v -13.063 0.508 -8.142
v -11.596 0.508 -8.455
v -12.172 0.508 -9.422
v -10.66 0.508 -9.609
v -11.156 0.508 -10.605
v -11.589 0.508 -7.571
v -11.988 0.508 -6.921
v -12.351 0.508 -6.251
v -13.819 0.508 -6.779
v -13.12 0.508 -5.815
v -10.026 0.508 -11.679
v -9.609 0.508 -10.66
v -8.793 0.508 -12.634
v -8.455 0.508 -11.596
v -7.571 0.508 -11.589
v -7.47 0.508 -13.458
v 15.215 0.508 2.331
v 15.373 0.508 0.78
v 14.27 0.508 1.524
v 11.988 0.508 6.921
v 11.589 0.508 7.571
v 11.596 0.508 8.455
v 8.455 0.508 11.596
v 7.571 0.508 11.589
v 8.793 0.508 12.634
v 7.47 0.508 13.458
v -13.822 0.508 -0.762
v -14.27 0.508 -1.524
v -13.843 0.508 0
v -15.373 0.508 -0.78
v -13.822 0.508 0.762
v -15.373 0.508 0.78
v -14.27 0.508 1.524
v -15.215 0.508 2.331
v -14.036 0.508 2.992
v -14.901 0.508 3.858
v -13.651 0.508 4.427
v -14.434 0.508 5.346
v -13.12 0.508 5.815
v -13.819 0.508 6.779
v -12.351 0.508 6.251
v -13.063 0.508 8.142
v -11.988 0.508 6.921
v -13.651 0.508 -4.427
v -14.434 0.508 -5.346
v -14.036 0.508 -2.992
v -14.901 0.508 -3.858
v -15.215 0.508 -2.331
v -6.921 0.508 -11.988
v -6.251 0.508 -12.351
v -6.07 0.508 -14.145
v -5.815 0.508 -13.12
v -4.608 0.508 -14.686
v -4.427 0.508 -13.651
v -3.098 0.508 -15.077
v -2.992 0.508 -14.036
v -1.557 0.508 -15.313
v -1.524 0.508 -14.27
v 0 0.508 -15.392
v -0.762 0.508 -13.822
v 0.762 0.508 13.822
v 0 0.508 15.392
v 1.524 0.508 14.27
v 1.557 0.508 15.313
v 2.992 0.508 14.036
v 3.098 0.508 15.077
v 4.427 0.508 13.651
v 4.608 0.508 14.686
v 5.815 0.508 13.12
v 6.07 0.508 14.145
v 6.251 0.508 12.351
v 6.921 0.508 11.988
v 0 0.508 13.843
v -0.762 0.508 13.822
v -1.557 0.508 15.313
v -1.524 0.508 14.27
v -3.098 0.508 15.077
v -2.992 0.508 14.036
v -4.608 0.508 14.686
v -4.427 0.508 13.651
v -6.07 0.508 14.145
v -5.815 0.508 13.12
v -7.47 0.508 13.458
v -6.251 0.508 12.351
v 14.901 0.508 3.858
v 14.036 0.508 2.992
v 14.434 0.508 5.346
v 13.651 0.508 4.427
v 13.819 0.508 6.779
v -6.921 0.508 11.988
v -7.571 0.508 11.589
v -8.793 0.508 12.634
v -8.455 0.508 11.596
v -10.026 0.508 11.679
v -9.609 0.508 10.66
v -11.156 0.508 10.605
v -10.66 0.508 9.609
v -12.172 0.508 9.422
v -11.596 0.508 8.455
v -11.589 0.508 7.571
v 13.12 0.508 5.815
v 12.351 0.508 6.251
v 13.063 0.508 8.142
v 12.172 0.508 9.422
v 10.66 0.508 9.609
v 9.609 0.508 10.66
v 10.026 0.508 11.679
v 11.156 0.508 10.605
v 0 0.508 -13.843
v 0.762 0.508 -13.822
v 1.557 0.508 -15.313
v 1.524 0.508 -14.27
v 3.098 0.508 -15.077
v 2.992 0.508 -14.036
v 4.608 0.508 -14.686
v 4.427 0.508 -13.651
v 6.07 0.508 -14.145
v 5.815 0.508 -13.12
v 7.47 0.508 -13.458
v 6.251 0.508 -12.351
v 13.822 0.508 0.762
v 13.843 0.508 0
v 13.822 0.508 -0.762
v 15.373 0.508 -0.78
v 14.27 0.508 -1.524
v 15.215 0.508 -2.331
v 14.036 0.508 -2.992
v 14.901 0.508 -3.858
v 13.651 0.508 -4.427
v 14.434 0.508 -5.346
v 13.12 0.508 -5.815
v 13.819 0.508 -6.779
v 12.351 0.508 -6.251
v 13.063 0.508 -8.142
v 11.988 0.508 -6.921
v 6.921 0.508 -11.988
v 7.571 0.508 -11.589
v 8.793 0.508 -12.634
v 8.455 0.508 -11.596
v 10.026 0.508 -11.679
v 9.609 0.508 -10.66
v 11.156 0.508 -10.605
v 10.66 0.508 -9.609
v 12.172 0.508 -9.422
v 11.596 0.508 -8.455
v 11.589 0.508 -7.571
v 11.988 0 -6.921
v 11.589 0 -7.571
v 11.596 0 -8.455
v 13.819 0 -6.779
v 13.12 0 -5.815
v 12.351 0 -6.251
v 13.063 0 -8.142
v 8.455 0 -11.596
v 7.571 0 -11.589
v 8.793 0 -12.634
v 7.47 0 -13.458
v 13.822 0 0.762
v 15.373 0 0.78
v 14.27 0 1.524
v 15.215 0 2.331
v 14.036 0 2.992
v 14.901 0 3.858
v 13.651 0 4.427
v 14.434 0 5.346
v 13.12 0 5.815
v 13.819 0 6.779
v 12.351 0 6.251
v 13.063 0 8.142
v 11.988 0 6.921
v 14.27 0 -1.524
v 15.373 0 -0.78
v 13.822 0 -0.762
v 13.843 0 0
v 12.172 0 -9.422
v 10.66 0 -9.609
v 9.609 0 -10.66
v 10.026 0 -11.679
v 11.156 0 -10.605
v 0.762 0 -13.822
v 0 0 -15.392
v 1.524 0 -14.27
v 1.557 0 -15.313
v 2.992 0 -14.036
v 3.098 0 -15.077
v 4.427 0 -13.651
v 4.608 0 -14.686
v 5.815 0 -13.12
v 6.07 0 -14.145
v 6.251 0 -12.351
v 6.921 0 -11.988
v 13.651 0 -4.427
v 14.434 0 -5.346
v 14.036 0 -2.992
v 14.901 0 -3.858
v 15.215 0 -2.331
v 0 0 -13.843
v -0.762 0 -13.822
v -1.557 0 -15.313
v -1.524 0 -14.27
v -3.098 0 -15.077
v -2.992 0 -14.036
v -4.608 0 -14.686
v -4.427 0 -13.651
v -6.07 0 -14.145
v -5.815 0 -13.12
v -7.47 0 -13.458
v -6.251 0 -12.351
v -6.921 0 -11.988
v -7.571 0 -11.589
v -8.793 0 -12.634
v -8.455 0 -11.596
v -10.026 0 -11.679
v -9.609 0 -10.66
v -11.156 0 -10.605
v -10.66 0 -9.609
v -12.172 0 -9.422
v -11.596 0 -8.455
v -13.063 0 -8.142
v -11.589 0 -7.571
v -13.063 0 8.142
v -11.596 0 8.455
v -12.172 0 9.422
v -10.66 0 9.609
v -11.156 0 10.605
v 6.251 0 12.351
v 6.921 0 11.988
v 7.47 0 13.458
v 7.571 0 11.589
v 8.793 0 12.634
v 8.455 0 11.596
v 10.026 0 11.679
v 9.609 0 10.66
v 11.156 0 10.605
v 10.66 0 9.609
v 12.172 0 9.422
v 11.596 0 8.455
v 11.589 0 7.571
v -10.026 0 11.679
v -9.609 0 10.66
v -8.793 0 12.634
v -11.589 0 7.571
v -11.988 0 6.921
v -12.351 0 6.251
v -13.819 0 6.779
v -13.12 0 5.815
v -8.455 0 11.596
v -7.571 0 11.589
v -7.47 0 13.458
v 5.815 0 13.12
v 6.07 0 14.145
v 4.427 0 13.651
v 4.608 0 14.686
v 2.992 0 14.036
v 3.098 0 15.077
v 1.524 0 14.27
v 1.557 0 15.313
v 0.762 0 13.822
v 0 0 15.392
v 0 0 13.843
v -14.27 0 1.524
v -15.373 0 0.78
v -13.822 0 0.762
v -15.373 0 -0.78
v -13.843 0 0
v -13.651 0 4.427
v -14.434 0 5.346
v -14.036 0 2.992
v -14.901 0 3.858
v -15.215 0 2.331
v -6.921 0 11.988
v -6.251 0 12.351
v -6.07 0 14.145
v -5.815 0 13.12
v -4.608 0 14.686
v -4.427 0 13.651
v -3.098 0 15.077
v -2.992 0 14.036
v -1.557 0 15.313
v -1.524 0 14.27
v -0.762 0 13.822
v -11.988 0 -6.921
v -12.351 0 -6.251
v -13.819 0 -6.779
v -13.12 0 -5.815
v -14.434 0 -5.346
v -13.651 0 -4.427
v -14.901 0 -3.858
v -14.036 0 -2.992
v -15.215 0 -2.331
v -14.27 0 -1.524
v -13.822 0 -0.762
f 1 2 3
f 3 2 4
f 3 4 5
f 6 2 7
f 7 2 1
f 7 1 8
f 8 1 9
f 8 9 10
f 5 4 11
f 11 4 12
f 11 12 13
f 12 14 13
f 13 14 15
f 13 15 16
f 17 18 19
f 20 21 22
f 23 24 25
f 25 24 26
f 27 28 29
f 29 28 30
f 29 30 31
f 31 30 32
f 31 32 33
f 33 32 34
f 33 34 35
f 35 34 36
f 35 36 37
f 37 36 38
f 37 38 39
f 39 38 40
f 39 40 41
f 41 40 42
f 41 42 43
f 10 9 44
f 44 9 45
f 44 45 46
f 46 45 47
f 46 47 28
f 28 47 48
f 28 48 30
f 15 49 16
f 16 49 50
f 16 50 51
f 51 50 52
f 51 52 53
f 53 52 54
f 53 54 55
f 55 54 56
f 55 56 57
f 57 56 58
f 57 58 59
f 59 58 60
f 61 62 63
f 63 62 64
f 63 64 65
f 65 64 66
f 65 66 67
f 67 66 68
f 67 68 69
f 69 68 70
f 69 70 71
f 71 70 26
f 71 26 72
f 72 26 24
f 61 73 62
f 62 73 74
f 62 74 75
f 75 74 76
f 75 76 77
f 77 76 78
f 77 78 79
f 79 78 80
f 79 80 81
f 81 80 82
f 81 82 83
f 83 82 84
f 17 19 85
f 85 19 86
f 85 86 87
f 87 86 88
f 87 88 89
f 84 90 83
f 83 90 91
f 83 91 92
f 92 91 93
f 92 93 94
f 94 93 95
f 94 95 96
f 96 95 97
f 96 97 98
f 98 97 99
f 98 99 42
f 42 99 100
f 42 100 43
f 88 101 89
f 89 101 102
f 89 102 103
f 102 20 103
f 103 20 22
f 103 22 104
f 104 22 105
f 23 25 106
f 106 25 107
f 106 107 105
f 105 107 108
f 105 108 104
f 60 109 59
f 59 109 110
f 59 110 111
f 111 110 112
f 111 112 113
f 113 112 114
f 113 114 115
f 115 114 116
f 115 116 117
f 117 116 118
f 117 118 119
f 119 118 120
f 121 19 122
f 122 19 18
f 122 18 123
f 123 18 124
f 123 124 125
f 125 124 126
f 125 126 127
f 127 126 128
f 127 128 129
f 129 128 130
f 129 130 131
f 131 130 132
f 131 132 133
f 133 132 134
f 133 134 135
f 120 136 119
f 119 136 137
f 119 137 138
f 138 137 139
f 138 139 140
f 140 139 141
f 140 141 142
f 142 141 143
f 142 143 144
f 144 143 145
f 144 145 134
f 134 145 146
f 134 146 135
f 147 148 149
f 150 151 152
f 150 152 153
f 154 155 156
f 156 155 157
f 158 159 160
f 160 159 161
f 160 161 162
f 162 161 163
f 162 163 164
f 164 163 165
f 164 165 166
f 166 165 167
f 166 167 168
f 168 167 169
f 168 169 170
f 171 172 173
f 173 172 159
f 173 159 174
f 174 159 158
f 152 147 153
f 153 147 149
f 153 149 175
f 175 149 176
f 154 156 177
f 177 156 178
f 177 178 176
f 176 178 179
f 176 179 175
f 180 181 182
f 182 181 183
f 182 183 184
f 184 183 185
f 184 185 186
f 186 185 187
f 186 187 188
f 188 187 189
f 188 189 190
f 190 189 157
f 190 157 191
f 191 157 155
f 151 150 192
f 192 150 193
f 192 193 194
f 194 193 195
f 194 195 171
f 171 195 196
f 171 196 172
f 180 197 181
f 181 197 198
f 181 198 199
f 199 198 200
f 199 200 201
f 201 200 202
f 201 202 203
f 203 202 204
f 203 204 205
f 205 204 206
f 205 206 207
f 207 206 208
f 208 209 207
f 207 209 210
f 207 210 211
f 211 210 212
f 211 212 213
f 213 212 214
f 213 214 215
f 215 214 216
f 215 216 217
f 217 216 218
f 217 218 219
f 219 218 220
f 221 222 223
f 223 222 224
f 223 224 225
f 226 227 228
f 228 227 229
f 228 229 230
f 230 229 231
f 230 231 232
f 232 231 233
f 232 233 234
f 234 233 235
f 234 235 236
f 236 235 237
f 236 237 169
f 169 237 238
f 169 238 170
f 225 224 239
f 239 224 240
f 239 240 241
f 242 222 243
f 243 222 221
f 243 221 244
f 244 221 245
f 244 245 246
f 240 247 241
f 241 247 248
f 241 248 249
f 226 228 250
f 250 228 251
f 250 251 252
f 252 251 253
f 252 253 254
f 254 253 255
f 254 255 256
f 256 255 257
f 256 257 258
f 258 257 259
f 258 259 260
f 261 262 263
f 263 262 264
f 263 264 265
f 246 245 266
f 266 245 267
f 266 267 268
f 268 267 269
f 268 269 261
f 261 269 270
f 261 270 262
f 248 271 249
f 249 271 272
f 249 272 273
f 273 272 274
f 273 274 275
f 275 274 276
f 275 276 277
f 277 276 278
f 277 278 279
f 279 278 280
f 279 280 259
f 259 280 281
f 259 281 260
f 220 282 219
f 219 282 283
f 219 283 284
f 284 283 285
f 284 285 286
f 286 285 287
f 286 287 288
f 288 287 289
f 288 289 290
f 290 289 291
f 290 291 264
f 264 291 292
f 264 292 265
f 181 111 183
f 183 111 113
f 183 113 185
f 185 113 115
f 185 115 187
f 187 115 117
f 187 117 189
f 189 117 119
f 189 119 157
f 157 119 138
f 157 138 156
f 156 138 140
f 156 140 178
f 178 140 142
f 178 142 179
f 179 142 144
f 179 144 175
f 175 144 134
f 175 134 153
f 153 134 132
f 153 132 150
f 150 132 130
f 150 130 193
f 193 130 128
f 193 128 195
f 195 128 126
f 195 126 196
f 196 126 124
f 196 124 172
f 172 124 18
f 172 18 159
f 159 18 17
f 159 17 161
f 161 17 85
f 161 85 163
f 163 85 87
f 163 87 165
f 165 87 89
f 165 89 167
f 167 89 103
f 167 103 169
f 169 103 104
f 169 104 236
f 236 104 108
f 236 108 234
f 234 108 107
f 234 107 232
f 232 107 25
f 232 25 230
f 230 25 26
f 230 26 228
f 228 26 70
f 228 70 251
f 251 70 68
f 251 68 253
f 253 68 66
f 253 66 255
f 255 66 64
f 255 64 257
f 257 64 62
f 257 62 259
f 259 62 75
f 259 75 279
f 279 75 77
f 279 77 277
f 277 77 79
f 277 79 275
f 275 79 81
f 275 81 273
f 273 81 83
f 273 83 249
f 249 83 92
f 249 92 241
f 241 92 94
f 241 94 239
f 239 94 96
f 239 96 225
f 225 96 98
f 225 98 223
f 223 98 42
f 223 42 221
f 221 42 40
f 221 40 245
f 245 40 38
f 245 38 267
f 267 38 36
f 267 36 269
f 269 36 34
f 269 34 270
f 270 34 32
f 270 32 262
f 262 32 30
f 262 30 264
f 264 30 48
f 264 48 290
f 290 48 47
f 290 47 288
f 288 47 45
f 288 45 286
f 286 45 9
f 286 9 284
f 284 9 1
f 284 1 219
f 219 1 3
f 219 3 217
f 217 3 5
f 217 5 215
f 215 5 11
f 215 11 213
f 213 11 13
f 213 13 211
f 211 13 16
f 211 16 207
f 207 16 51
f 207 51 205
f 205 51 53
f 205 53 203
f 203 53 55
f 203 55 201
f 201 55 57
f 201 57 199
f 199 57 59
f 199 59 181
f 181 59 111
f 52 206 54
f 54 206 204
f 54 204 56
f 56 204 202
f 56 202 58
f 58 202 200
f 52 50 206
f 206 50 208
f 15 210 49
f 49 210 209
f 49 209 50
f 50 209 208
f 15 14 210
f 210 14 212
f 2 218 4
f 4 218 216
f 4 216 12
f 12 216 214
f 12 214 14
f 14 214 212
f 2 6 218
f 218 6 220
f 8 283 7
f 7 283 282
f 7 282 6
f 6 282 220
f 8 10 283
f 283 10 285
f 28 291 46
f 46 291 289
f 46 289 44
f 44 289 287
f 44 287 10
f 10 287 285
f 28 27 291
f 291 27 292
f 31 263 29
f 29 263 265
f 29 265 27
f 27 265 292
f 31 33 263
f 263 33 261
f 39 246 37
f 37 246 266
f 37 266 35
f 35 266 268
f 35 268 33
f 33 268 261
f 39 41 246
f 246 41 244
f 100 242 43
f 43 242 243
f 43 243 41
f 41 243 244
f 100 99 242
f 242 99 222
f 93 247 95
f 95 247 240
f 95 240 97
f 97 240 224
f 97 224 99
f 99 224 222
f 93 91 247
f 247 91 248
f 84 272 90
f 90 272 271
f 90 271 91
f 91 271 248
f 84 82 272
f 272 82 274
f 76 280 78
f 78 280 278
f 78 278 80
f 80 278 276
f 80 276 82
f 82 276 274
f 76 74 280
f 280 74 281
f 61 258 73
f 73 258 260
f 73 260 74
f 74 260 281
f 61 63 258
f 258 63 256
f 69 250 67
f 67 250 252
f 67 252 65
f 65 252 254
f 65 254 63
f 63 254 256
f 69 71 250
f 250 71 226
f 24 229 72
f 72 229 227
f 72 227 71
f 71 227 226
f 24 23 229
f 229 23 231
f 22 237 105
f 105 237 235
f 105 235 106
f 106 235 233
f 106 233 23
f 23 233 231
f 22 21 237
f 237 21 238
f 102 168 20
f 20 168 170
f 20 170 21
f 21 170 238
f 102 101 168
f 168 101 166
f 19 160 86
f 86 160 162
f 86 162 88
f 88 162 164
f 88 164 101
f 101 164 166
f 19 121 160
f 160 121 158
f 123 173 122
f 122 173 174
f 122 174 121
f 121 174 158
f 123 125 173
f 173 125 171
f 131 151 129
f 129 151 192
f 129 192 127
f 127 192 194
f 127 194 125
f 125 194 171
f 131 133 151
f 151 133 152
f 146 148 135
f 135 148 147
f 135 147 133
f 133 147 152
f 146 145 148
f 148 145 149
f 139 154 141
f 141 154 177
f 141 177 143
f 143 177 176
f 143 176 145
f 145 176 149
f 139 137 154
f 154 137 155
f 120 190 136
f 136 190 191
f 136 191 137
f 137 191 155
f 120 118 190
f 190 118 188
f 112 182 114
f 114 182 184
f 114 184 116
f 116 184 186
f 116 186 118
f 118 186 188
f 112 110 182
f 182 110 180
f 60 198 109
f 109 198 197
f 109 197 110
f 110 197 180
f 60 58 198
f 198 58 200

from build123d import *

# Parameters (mm, degrees)
SKETCH1_R           = 15.3924
BOSS_EXTRUDE1_DEPTH = 0.508


with BuildPart() as part:
    # Sketch1 → Boss-Extrude1 (new body)
    with BuildSketch(Plane(origin=(0, 0, 0), x_dir=(1, 0, 0), z_dir=(0, 1, 0))):
        Circle(SKETCH1_R)
        with BuildLine():
            Line((-1.524, 14.269850209), (-0.762, 13.822011612))
            ThreePointArc((-0.762, 13.822011612), (0, 13.843), (0.762, 13.822011612))
            Line((0.762, 13.822011612), (1.524, 14.269850209))
            ThreePointArc((1.524, 14.269850209), (3.714312116, 13.862001533), (5.815102389, 13.12005279))
            Line((5.815102389, 13.12005279), (6.251094448, 12.351213187))
            ThreePointArc((6.251094448, 12.351213187), (6.9215, 11.988389665), (7.570917164, 11.589213187))
            Line((7.570917164, 11.589213187), (8.45474782, 11.59605279))
            ThreePointArc((8.45474782, 11.59605279), (10.147689417, 10.147689417), (11.59605279, 8.45474782))
            Line((11.59605279, 8.45474782), (11.589213187, 7.570917164))
            ThreePointArc((11.589213187, 7.570917164), (11.988389665, 6.9215), (12.351213187, 6.251094448))
            Line((12.351213187, 6.251094448), (13.12005279, 5.815102389))
            ThreePointArc((13.12005279, 5.815102389), (13.862001533, 3.714312116), (14.269850209, 1.524))
            Line((14.269850209, 1.524), (13.822011612, 0.762))
            ThreePointArc((13.822011612, 0.762), (13.843, 0), (13.822011612, -0.762))
            Line((13.822011612, -0.762), (14.269850209, -1.524))
            ThreePointArc((14.269850209, -1.524), (13.862001533, -3.714312116), (13.12005279, -5.815102389))
            Line((13.12005279, -5.815102389), (12.351213187, -6.251094448))
            ThreePointArc((12.351213187, -6.251094448), (11.988389665, -6.9215), (11.589213187, -7.570917164))
            Line((11.589213187, -7.570917164), (11.59605279, -8.45474782))
            ThreePointArc((11.59605279, -8.45474782), (10.147689417, -10.147689417), (8.45474782, -11.59605279))
            Line((8.45474782, -11.59605279), (7.570917164, -11.589213187))
            ThreePointArc((7.570917164, -11.589213187), (6.9215, -11.988389665), (6.251094448, -12.351213187))
            Line((6.251094448, -12.351213187), (5.815102389, -13.12005279))
            ThreePointArc((5.815102389, -13.12005279), (3.714312116, -13.862001533), (1.524, -14.269850209))
            Line((1.524, -14.269850209), (0.762, -13.822011612))
            ThreePointArc((0.762, -13.822011612), (0, -13.843), (-0.762, -13.822011612))
            Line((-0.762, -13.822011612), (-1.524, -14.269850209))
            ThreePointArc((-1.524, -14.269850209), (-3.714312116, -13.862001533), (-5.815102389, -13.12005279))
            Line((-5.815102389, -13.12005279), (-6.251094448, -12.351213187))
            ThreePointArc((-6.251094448, -12.351213187), (-6.9215, -11.988389665), (-7.570917164, -11.589213187))
            Line((-7.570917164, -11.589213187), (-8.45474782, -11.59605279))
            ThreePointArc((-8.45474782, -11.59605279), (-10.147689417, -10.147689417), (-11.59605279, -8.45474782))
            Line((-11.59605279, -8.45474782), (-11.589213187, -7.570917164))
            ThreePointArc((-11.589213187, -7.570917164), (-11.988389665, -6.9215), (-12.351213187, -6.251094448))
            Line((-12.351213187, -6.251094448), (-13.12005279, -5.815102389))
            ThreePointArc((-13.12005279, -5.815102389), (-13.862001533, -3.714312116), (-14.269850209, -1.524))
            Line((-14.269850209, -1.524), (-13.822011612, -0.762))
            ThreePointArc((-13.822011612, -0.762), (-13.843, 0), (-13.822011612, 0.762))
            Line((-13.822011612, 0.762), (-14.269850209, 1.524))
            ThreePointArc((-14.269850209, 1.524), (-13.862001533, 3.714312116), (-13.12005279, 5.815102389))
            Line((-13.12005279, 5.815102389), (-12.351213187, 6.251094448))
            ThreePointArc((-12.351213187, 6.251094448), (-11.988389665, 6.9215), (-11.589213187, 7.570917164))
            Line((-11.589213187, 7.570917164), (-11.59605279, 8.45474782))
            ThreePointArc((-11.59605279, 8.45474782), (-10.147689417, 10.147689417), (-8.45474782, 11.59605279))
            Line((-8.45474782, 11.59605279), (-7.570917164, 11.589213187))
            ThreePointArc((-7.570917164, 11.589213187), (-6.9215, 11.988389665), (-6.251094448, 12.351213187))
            Line((-6.251094448, 12.351213187), (-5.815102389, 13.12005279))
            ThreePointArc((-5.815102389, 13.12005279), (-3.714312116, 13.862001533), (-1.524, 14.269850209))
        make_face(mode=Mode.SUBTRACT)
    extrude(amount=BOSS_EXTRUDE1_DEPTH)


solid = part.part
